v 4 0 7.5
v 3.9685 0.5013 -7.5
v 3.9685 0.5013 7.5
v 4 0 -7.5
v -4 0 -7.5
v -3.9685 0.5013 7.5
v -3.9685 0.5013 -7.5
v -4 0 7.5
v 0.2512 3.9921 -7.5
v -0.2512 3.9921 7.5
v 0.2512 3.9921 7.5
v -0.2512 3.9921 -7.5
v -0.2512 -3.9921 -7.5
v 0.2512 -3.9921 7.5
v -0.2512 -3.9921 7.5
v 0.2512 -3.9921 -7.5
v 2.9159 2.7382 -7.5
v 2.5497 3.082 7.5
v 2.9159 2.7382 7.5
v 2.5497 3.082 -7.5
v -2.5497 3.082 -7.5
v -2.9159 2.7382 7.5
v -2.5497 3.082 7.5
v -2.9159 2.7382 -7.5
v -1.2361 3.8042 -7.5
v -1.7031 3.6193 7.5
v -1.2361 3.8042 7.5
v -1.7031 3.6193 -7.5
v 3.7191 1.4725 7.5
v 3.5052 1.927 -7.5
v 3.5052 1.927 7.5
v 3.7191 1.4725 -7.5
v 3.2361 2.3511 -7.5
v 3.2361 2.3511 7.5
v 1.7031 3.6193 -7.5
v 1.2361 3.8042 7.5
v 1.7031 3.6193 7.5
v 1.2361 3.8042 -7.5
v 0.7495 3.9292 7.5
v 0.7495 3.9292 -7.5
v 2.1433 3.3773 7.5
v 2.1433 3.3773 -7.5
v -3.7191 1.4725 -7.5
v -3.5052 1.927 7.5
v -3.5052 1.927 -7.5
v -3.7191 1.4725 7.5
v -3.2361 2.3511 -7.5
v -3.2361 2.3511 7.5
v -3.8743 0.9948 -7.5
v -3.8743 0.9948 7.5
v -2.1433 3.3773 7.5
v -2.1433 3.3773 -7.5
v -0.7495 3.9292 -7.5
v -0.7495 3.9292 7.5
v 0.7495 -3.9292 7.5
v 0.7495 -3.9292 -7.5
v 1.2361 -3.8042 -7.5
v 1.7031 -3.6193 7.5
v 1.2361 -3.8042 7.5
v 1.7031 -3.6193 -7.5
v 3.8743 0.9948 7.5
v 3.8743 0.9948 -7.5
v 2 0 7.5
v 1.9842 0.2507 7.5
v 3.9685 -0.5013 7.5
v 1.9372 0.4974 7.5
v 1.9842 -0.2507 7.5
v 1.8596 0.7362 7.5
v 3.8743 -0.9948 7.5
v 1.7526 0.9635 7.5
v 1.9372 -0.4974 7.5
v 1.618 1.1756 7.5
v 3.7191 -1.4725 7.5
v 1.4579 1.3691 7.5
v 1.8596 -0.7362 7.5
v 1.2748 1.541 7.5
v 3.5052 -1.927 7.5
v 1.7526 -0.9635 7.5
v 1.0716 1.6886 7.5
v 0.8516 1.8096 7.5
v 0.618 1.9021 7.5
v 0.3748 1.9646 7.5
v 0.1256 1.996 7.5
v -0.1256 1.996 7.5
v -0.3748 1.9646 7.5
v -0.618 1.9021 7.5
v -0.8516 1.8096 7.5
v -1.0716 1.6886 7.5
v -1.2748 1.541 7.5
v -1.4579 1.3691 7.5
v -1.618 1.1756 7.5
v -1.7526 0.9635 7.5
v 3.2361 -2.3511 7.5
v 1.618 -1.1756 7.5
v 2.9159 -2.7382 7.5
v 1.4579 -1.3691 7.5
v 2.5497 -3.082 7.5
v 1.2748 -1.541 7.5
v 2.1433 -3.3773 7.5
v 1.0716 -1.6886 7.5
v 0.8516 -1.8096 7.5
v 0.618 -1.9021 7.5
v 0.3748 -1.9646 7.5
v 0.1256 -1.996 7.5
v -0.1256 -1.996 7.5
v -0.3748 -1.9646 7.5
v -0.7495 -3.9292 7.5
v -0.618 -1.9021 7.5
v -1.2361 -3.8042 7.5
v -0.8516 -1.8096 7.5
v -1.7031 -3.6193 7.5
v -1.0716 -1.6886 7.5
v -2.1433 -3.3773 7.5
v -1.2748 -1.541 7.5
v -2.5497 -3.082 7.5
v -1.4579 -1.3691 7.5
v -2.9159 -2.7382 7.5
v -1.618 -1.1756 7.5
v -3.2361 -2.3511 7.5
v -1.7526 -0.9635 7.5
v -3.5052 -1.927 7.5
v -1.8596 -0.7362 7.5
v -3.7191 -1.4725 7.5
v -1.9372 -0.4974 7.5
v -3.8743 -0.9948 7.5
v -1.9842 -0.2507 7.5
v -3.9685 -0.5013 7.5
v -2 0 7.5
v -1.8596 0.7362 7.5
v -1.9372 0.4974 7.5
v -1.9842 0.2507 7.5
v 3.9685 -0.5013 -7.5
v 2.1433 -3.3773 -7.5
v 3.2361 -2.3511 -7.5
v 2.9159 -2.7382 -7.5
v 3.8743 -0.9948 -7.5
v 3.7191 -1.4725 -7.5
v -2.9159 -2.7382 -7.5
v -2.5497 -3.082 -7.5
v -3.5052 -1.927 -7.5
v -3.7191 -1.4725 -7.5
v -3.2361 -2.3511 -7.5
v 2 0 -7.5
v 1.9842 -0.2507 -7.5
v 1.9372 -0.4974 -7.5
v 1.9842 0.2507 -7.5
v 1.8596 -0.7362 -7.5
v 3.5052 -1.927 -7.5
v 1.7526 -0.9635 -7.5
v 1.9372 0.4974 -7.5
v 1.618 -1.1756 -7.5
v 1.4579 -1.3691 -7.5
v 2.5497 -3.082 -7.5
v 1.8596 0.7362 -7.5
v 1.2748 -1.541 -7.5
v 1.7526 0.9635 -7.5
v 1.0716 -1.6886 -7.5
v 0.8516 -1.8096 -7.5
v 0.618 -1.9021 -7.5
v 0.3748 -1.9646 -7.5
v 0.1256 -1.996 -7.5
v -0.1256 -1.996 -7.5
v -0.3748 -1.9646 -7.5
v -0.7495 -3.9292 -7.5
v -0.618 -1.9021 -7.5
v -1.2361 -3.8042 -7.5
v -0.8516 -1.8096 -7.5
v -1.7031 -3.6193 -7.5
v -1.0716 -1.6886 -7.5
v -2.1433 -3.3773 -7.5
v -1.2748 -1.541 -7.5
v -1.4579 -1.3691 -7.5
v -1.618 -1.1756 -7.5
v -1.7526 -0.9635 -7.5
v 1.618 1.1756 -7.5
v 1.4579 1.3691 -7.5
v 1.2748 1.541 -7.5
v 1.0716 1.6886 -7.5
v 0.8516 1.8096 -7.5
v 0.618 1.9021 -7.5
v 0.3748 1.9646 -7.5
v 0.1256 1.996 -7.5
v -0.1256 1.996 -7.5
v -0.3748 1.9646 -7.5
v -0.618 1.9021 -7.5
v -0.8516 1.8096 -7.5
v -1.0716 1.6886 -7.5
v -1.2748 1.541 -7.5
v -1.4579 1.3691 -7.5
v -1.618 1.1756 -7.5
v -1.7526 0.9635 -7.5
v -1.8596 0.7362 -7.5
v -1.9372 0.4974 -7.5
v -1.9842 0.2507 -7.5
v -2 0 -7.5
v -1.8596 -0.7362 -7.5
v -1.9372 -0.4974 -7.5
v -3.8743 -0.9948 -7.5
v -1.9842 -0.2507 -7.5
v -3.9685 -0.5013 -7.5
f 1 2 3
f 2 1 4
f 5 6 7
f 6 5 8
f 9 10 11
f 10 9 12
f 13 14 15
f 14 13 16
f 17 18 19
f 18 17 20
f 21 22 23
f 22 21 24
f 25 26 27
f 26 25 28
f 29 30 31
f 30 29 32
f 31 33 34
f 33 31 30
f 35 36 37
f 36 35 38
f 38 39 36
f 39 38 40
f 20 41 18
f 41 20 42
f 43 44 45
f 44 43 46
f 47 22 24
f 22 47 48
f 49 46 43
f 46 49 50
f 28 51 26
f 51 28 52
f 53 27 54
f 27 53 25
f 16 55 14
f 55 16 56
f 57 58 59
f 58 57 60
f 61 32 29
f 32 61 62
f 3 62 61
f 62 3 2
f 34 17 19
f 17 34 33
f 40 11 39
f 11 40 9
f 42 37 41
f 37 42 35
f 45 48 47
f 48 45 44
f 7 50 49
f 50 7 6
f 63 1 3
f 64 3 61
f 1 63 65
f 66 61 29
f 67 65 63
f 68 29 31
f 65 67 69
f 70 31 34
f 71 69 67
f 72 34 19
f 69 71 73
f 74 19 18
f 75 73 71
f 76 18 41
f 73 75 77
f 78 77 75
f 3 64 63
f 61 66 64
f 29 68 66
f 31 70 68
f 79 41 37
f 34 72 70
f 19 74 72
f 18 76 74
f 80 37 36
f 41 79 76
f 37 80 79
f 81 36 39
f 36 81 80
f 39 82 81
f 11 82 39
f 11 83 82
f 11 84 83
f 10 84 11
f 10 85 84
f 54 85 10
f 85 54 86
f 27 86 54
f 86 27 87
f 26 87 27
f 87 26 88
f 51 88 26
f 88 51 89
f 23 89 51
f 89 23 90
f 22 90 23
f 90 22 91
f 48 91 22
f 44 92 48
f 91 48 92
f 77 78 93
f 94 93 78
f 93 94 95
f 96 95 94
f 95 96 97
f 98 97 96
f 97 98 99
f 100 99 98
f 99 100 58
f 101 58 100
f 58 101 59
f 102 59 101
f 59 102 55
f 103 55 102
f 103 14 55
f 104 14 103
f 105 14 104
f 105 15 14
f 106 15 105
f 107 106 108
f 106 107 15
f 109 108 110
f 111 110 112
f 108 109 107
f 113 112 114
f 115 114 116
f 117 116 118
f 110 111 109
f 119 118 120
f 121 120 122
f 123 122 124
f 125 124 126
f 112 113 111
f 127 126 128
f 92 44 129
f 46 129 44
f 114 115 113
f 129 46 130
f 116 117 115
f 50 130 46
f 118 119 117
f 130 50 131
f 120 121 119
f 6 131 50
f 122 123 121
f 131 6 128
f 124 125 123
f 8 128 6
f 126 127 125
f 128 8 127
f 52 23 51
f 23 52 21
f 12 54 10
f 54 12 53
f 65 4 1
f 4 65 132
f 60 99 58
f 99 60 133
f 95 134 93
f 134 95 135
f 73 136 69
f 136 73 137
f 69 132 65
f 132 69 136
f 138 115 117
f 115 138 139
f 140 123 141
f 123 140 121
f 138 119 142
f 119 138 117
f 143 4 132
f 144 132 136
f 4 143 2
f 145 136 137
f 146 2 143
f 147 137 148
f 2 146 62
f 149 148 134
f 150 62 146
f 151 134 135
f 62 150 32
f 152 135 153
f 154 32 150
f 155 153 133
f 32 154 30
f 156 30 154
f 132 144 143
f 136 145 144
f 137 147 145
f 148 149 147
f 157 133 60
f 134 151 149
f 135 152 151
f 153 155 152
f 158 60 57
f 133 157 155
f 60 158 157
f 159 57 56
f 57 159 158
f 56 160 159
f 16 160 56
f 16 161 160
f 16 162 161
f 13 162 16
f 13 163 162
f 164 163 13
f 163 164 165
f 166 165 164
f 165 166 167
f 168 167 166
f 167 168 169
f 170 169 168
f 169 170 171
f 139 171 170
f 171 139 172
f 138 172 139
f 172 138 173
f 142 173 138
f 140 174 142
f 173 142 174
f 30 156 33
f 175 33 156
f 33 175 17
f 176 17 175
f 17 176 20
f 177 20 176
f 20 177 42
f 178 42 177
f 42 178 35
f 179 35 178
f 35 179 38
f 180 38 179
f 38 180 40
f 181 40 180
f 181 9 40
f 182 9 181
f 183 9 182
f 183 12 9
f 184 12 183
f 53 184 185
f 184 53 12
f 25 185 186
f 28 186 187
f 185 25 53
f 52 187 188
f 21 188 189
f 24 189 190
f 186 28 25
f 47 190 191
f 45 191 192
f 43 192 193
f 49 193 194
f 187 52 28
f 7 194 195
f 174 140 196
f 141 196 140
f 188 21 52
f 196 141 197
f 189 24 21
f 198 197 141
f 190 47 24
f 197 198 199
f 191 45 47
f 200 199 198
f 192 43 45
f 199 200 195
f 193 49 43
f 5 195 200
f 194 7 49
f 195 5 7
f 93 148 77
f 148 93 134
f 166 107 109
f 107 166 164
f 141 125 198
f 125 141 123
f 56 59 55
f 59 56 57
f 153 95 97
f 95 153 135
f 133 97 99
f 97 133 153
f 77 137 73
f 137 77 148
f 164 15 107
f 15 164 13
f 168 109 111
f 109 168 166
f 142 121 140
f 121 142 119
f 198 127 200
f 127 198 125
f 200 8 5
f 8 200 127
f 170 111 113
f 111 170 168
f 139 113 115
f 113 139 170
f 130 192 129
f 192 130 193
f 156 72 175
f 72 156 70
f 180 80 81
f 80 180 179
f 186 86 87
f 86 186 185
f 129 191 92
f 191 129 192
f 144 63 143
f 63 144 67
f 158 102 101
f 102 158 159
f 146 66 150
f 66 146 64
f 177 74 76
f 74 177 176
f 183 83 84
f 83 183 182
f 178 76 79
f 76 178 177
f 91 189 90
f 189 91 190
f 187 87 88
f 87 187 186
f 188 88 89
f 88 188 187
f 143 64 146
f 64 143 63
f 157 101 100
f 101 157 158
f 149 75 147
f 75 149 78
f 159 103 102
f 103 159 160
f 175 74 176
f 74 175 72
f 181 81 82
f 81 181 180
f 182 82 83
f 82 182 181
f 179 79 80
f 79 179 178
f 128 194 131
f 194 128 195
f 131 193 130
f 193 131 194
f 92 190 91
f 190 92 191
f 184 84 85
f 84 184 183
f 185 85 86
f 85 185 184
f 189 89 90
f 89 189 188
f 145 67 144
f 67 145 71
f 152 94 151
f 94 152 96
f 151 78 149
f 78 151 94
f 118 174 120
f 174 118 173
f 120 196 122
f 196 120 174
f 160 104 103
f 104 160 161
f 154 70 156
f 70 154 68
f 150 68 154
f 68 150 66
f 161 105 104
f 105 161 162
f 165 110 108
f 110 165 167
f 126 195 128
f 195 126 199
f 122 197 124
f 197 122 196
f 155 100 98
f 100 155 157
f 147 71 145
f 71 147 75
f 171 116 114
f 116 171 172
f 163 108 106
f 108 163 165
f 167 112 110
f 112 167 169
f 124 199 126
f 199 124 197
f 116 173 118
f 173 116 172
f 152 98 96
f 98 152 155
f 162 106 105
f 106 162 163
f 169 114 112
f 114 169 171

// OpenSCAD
$fn = 50;


difference() {
	union() {
		translate(v = [0, 0, -7.5000000000]) {
			cylinder(h = 15, r = 4.0000000000);
		}
	}
	union() {
		translate(v = [0, 0, -100.0000000000]) {
			cylinder(h = 200, r = 2);
		}
	}
}
